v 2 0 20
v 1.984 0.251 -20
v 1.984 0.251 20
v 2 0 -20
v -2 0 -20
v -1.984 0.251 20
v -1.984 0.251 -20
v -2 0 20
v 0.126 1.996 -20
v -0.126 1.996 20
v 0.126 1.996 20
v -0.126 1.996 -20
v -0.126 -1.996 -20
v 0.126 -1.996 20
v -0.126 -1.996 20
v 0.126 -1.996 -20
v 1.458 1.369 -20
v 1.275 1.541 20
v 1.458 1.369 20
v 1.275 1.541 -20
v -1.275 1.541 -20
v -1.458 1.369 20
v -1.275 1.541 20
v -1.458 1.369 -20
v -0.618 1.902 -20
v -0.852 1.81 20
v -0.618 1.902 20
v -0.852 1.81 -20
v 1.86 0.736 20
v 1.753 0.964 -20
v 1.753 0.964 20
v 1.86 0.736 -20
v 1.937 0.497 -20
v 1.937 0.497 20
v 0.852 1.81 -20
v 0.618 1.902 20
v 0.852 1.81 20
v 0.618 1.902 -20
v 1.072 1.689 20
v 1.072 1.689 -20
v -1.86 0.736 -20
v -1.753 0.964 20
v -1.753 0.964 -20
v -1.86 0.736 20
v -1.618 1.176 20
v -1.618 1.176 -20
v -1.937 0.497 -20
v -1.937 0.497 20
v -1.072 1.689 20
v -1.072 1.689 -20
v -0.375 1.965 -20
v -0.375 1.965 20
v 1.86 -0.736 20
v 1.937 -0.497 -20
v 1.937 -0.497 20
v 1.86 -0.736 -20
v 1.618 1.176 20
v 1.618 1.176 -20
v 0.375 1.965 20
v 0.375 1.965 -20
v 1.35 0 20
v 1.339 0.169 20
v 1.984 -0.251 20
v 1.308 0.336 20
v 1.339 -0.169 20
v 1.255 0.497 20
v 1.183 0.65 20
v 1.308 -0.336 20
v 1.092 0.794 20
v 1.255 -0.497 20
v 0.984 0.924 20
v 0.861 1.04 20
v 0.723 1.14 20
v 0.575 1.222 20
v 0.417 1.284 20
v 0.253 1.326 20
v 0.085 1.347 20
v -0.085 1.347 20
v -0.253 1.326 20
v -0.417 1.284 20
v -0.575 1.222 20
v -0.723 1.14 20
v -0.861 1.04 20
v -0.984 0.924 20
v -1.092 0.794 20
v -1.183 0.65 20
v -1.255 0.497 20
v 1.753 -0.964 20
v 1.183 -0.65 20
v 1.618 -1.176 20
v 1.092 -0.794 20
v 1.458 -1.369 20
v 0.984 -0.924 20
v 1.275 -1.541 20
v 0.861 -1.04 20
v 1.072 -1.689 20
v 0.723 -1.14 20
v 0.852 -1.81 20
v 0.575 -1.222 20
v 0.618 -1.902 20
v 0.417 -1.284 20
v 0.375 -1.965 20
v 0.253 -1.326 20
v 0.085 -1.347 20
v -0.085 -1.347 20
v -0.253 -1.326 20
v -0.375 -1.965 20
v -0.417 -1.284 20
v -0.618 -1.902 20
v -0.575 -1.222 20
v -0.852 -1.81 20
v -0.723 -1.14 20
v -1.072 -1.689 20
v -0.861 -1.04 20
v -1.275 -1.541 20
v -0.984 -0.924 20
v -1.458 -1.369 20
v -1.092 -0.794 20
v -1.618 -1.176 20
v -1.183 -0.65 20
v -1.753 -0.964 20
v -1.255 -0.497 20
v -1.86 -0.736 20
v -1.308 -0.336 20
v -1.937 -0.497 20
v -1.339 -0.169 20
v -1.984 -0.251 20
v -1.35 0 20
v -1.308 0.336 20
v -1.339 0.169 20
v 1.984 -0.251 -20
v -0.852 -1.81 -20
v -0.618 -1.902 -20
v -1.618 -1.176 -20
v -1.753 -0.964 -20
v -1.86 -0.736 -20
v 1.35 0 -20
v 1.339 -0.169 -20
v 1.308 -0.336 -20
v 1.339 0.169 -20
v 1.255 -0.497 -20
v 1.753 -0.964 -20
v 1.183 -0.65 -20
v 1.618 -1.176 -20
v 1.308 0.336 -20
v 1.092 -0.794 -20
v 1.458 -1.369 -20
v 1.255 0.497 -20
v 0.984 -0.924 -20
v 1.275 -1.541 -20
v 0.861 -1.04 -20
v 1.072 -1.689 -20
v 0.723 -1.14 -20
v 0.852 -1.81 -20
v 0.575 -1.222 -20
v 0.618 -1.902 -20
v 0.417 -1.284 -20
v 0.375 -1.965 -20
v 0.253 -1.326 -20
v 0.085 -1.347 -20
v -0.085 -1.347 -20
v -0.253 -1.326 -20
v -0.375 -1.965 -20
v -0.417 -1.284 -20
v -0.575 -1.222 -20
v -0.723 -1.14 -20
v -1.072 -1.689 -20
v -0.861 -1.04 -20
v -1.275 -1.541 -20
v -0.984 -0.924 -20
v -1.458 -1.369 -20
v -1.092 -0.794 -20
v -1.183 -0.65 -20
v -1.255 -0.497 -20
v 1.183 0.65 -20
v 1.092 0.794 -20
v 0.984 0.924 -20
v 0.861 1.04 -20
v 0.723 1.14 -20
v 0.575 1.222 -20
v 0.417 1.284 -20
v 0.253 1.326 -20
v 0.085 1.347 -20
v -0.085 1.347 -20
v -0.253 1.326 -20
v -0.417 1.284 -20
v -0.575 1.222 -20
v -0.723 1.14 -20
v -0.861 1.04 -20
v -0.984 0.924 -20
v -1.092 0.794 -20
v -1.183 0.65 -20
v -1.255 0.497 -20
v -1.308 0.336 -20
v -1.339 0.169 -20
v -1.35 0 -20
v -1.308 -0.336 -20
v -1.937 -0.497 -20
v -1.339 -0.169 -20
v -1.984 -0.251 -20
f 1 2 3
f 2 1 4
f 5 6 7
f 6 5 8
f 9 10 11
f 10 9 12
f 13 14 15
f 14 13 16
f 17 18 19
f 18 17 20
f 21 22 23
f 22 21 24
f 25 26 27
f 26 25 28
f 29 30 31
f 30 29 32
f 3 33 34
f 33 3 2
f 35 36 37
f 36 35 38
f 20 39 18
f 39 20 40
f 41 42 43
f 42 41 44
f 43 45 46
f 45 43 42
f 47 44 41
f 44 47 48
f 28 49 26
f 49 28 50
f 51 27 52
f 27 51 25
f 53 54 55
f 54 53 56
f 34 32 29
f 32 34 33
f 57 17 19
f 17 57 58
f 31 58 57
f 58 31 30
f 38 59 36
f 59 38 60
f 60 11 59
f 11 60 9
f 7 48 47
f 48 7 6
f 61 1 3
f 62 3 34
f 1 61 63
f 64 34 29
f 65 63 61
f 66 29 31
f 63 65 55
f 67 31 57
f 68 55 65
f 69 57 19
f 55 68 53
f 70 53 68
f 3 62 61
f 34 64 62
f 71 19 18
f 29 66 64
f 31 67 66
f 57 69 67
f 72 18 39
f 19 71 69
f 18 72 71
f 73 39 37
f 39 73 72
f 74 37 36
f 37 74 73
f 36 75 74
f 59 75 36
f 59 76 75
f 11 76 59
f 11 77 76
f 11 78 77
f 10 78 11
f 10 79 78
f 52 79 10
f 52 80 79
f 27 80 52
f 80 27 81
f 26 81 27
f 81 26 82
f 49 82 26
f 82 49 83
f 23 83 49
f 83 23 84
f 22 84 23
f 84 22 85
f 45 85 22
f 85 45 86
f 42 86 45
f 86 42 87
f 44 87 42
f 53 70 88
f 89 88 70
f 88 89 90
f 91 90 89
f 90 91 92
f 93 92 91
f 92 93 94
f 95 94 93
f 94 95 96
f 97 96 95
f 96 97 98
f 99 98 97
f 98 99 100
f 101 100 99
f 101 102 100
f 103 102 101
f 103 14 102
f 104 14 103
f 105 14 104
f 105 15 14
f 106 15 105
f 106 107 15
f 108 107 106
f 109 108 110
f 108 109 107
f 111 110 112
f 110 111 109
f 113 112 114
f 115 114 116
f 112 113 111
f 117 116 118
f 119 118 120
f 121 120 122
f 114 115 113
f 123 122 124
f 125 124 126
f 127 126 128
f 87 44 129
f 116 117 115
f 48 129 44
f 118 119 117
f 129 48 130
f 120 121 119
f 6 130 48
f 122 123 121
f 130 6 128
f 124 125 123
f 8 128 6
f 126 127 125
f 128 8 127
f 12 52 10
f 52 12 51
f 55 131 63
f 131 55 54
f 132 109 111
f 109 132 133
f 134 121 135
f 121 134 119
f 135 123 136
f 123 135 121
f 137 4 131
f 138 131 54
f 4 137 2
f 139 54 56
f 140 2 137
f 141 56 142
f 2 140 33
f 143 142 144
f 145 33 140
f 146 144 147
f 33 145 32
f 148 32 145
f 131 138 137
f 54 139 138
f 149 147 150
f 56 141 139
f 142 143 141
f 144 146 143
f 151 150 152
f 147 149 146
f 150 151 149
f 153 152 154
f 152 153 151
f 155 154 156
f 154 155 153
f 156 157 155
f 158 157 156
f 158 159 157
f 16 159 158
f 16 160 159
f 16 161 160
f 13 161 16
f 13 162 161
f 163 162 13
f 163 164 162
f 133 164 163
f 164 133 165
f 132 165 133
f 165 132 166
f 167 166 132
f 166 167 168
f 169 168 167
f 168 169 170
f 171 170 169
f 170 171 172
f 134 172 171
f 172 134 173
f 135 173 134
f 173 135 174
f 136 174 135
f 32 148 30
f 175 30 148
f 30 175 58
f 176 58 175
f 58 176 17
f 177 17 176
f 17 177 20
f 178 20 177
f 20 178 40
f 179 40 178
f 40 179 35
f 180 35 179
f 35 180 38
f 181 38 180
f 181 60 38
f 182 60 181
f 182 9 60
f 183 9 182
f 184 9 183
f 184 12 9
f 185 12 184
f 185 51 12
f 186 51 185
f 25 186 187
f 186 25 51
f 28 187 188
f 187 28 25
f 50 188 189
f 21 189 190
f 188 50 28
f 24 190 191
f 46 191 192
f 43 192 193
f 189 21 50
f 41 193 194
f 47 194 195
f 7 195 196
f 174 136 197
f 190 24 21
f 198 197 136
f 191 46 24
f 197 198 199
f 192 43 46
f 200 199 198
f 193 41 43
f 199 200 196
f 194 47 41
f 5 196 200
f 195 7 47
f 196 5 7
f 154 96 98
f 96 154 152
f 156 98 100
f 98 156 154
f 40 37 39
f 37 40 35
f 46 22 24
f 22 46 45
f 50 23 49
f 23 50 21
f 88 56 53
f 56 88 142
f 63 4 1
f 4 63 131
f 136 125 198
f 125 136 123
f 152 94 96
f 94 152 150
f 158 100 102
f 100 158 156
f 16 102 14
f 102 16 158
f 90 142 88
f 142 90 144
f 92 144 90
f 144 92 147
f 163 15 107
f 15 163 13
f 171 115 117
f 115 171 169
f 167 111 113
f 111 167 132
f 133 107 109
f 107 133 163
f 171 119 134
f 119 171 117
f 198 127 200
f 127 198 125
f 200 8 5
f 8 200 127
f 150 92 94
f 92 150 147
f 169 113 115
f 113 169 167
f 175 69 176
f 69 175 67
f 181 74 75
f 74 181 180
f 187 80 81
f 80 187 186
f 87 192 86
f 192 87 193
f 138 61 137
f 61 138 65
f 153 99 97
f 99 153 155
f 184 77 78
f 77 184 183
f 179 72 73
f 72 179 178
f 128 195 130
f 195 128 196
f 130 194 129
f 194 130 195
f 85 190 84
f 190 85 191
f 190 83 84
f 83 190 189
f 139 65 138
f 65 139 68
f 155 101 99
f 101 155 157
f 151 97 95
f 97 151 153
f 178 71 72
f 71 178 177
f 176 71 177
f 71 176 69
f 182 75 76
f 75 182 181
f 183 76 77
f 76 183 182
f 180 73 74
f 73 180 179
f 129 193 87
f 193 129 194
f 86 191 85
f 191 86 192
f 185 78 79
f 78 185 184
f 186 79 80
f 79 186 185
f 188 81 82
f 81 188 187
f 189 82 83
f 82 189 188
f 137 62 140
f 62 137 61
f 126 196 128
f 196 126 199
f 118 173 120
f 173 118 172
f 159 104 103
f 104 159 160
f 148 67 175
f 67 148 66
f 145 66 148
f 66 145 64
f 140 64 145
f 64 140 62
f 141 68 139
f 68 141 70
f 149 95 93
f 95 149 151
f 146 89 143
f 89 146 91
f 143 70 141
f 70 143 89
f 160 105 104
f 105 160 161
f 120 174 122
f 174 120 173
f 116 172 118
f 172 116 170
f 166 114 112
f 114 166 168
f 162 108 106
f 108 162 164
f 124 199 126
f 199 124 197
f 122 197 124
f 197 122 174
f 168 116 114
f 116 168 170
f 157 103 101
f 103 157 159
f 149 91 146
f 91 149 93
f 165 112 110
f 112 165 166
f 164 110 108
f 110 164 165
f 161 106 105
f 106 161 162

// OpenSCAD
$fn = 50;


difference() {
	union() {
		translate(v = [0, 0, -20.0000000000]) {
			cylinder(h = 40, r = 2.0000000000);
		}
	}
	union() {
		translate(v = [0, 0, -100.0000000000]) {
			cylinder(h = 200, r = 1.3500000000);
		}
	}
}
